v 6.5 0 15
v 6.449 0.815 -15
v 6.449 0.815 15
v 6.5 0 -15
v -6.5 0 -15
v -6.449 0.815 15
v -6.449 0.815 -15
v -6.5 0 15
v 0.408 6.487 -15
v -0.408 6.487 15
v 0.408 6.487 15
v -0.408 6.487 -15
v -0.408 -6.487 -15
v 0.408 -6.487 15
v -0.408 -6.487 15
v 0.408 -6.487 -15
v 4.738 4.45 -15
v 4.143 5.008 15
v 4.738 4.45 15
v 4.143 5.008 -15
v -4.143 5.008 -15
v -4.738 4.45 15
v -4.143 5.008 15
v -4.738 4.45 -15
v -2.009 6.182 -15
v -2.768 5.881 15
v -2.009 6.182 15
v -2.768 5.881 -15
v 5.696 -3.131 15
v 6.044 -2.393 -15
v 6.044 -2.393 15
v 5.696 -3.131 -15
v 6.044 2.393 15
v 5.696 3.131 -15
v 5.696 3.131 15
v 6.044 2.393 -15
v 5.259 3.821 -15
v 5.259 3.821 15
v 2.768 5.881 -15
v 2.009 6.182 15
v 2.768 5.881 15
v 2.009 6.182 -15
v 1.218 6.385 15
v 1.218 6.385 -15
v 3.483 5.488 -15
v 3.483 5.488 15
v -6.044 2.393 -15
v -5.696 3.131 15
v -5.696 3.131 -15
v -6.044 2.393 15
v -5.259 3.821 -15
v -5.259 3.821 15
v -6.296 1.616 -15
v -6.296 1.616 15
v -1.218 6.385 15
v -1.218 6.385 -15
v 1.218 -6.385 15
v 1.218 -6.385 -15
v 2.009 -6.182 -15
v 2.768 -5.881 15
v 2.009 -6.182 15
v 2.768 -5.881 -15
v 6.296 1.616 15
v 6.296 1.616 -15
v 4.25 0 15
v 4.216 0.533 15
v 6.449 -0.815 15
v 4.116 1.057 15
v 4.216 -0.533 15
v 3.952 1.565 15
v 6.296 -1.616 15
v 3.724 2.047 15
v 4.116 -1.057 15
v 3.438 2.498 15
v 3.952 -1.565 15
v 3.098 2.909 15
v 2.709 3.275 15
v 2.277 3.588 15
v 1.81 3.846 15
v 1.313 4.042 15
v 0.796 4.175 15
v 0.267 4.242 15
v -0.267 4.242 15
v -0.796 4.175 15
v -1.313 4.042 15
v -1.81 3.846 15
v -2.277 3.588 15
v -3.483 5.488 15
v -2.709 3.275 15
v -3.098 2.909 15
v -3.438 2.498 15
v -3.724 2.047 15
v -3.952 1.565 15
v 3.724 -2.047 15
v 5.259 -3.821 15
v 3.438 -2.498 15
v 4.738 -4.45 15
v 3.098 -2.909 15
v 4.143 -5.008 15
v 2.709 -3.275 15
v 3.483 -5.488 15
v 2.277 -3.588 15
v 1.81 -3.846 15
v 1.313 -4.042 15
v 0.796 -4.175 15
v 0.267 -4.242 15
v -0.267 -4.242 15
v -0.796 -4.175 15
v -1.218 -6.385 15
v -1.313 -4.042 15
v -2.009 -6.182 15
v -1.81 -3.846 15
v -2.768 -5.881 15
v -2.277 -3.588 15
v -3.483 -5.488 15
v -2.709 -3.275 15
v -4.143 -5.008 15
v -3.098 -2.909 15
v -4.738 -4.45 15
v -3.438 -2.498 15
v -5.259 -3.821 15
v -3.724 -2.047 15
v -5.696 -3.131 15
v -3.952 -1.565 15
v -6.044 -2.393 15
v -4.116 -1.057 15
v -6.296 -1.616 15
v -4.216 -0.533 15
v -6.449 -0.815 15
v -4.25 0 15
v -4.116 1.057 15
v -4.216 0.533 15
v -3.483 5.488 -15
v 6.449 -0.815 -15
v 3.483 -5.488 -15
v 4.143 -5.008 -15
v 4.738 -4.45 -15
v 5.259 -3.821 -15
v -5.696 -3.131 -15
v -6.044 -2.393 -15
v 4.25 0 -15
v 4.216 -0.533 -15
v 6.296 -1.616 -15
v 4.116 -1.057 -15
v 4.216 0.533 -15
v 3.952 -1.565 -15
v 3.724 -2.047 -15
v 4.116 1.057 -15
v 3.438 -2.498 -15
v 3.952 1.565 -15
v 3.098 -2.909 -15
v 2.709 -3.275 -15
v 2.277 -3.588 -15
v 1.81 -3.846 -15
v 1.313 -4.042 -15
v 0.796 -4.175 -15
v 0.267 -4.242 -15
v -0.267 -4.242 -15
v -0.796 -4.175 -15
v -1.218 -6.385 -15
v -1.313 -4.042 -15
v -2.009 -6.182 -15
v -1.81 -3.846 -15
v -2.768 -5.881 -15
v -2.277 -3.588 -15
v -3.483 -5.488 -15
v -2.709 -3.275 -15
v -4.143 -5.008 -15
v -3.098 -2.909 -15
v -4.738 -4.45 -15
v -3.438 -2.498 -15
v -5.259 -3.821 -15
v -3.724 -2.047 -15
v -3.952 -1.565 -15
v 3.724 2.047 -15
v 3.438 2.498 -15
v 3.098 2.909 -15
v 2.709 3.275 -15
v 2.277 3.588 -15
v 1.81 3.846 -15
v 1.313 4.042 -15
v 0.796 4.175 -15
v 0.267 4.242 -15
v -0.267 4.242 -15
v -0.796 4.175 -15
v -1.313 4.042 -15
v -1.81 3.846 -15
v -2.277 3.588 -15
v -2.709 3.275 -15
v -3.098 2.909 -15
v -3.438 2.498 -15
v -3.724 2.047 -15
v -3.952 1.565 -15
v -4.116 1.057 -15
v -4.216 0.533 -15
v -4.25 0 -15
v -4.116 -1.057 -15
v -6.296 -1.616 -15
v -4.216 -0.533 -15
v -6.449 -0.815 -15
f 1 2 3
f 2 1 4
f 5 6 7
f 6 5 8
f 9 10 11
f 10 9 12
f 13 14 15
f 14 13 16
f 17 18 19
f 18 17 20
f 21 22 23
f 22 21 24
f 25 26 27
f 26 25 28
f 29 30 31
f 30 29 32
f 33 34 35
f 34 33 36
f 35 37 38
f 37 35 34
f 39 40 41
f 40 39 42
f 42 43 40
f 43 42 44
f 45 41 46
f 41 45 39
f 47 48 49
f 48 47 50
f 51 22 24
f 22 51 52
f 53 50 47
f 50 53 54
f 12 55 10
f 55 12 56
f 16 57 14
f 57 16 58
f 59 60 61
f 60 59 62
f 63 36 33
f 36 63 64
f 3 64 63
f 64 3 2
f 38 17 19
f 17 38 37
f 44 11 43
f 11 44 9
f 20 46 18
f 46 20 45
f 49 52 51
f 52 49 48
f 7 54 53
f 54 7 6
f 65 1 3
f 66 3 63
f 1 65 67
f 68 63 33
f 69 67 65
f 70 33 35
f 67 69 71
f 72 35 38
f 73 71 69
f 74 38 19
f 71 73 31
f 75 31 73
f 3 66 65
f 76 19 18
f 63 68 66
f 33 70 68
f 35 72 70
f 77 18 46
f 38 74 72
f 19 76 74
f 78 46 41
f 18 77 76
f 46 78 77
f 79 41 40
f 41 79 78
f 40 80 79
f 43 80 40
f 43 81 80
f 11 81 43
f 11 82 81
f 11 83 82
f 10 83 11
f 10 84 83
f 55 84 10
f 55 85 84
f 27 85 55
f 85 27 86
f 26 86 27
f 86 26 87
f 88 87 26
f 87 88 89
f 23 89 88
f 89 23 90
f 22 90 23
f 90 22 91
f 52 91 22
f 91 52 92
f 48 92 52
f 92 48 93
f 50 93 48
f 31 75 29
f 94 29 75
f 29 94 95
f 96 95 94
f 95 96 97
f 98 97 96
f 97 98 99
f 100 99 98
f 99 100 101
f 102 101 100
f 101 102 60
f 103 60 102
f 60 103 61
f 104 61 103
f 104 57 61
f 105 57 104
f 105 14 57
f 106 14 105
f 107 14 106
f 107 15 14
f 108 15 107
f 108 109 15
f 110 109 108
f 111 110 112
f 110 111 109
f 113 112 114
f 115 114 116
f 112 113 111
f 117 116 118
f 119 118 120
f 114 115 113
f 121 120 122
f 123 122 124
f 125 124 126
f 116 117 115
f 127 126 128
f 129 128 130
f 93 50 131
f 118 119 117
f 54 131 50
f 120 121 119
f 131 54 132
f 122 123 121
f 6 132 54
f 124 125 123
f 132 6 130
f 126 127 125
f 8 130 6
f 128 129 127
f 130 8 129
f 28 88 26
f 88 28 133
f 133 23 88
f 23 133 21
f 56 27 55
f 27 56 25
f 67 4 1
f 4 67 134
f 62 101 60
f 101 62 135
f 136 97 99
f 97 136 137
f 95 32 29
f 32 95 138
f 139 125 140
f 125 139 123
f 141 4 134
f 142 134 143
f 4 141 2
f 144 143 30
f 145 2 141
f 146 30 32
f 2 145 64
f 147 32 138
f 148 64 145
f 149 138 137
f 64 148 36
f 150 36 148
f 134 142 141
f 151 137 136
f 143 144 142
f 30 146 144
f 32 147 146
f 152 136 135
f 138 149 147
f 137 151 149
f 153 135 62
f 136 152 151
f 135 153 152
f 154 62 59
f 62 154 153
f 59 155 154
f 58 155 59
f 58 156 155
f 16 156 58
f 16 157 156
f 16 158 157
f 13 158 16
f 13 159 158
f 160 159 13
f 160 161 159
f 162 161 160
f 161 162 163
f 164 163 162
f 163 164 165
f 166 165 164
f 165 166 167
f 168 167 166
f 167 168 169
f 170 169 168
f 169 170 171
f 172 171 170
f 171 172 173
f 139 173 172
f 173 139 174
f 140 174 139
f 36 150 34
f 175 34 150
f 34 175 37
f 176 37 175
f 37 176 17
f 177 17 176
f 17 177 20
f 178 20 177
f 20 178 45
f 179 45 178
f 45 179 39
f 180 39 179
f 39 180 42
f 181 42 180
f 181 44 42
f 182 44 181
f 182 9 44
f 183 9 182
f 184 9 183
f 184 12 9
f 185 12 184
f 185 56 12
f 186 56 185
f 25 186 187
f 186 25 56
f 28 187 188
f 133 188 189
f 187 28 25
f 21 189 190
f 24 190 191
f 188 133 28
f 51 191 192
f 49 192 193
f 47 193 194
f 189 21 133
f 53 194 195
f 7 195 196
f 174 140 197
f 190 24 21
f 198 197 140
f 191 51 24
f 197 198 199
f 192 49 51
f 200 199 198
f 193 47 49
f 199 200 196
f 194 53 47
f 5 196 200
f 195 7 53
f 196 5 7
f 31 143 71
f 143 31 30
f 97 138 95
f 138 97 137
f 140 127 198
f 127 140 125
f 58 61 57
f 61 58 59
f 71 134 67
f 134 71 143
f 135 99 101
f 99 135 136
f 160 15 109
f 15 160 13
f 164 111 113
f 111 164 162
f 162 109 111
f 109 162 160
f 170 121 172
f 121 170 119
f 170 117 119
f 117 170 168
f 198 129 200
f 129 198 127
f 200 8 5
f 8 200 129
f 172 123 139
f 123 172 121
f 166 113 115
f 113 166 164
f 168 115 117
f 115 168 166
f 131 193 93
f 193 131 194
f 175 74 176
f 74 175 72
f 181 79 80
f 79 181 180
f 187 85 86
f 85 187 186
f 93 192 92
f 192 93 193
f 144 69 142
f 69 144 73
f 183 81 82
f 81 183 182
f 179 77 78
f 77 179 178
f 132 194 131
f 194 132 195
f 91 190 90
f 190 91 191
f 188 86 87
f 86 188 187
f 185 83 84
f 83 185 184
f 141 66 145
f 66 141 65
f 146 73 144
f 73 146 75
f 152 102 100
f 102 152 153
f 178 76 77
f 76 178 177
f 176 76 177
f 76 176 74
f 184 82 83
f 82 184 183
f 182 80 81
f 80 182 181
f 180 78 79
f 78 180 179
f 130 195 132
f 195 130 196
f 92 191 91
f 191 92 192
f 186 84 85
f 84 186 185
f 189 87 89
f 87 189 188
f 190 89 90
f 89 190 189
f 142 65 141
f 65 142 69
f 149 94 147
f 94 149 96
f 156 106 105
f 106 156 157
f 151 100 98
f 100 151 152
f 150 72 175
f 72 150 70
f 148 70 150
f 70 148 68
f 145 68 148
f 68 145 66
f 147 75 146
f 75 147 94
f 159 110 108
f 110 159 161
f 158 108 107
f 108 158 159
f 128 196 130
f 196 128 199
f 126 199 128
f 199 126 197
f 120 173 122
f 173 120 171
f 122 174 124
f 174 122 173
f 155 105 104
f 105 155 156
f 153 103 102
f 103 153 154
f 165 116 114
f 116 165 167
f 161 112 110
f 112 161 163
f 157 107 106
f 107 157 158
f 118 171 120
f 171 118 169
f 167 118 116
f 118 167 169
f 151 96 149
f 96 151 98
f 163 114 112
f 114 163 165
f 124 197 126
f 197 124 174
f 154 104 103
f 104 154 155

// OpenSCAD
$fn = 50;


difference() {
	union() {
		translate(v = [0, 0, -15.0000000000]) {
			cylinder(h = 30, r = 6.5000000000);
		}
	}
	union() {
		translate(v = [0, 0, -100.0000000000]) {
			cylinder(h = 200, r = 4.2500000000);
		}
	}
}
